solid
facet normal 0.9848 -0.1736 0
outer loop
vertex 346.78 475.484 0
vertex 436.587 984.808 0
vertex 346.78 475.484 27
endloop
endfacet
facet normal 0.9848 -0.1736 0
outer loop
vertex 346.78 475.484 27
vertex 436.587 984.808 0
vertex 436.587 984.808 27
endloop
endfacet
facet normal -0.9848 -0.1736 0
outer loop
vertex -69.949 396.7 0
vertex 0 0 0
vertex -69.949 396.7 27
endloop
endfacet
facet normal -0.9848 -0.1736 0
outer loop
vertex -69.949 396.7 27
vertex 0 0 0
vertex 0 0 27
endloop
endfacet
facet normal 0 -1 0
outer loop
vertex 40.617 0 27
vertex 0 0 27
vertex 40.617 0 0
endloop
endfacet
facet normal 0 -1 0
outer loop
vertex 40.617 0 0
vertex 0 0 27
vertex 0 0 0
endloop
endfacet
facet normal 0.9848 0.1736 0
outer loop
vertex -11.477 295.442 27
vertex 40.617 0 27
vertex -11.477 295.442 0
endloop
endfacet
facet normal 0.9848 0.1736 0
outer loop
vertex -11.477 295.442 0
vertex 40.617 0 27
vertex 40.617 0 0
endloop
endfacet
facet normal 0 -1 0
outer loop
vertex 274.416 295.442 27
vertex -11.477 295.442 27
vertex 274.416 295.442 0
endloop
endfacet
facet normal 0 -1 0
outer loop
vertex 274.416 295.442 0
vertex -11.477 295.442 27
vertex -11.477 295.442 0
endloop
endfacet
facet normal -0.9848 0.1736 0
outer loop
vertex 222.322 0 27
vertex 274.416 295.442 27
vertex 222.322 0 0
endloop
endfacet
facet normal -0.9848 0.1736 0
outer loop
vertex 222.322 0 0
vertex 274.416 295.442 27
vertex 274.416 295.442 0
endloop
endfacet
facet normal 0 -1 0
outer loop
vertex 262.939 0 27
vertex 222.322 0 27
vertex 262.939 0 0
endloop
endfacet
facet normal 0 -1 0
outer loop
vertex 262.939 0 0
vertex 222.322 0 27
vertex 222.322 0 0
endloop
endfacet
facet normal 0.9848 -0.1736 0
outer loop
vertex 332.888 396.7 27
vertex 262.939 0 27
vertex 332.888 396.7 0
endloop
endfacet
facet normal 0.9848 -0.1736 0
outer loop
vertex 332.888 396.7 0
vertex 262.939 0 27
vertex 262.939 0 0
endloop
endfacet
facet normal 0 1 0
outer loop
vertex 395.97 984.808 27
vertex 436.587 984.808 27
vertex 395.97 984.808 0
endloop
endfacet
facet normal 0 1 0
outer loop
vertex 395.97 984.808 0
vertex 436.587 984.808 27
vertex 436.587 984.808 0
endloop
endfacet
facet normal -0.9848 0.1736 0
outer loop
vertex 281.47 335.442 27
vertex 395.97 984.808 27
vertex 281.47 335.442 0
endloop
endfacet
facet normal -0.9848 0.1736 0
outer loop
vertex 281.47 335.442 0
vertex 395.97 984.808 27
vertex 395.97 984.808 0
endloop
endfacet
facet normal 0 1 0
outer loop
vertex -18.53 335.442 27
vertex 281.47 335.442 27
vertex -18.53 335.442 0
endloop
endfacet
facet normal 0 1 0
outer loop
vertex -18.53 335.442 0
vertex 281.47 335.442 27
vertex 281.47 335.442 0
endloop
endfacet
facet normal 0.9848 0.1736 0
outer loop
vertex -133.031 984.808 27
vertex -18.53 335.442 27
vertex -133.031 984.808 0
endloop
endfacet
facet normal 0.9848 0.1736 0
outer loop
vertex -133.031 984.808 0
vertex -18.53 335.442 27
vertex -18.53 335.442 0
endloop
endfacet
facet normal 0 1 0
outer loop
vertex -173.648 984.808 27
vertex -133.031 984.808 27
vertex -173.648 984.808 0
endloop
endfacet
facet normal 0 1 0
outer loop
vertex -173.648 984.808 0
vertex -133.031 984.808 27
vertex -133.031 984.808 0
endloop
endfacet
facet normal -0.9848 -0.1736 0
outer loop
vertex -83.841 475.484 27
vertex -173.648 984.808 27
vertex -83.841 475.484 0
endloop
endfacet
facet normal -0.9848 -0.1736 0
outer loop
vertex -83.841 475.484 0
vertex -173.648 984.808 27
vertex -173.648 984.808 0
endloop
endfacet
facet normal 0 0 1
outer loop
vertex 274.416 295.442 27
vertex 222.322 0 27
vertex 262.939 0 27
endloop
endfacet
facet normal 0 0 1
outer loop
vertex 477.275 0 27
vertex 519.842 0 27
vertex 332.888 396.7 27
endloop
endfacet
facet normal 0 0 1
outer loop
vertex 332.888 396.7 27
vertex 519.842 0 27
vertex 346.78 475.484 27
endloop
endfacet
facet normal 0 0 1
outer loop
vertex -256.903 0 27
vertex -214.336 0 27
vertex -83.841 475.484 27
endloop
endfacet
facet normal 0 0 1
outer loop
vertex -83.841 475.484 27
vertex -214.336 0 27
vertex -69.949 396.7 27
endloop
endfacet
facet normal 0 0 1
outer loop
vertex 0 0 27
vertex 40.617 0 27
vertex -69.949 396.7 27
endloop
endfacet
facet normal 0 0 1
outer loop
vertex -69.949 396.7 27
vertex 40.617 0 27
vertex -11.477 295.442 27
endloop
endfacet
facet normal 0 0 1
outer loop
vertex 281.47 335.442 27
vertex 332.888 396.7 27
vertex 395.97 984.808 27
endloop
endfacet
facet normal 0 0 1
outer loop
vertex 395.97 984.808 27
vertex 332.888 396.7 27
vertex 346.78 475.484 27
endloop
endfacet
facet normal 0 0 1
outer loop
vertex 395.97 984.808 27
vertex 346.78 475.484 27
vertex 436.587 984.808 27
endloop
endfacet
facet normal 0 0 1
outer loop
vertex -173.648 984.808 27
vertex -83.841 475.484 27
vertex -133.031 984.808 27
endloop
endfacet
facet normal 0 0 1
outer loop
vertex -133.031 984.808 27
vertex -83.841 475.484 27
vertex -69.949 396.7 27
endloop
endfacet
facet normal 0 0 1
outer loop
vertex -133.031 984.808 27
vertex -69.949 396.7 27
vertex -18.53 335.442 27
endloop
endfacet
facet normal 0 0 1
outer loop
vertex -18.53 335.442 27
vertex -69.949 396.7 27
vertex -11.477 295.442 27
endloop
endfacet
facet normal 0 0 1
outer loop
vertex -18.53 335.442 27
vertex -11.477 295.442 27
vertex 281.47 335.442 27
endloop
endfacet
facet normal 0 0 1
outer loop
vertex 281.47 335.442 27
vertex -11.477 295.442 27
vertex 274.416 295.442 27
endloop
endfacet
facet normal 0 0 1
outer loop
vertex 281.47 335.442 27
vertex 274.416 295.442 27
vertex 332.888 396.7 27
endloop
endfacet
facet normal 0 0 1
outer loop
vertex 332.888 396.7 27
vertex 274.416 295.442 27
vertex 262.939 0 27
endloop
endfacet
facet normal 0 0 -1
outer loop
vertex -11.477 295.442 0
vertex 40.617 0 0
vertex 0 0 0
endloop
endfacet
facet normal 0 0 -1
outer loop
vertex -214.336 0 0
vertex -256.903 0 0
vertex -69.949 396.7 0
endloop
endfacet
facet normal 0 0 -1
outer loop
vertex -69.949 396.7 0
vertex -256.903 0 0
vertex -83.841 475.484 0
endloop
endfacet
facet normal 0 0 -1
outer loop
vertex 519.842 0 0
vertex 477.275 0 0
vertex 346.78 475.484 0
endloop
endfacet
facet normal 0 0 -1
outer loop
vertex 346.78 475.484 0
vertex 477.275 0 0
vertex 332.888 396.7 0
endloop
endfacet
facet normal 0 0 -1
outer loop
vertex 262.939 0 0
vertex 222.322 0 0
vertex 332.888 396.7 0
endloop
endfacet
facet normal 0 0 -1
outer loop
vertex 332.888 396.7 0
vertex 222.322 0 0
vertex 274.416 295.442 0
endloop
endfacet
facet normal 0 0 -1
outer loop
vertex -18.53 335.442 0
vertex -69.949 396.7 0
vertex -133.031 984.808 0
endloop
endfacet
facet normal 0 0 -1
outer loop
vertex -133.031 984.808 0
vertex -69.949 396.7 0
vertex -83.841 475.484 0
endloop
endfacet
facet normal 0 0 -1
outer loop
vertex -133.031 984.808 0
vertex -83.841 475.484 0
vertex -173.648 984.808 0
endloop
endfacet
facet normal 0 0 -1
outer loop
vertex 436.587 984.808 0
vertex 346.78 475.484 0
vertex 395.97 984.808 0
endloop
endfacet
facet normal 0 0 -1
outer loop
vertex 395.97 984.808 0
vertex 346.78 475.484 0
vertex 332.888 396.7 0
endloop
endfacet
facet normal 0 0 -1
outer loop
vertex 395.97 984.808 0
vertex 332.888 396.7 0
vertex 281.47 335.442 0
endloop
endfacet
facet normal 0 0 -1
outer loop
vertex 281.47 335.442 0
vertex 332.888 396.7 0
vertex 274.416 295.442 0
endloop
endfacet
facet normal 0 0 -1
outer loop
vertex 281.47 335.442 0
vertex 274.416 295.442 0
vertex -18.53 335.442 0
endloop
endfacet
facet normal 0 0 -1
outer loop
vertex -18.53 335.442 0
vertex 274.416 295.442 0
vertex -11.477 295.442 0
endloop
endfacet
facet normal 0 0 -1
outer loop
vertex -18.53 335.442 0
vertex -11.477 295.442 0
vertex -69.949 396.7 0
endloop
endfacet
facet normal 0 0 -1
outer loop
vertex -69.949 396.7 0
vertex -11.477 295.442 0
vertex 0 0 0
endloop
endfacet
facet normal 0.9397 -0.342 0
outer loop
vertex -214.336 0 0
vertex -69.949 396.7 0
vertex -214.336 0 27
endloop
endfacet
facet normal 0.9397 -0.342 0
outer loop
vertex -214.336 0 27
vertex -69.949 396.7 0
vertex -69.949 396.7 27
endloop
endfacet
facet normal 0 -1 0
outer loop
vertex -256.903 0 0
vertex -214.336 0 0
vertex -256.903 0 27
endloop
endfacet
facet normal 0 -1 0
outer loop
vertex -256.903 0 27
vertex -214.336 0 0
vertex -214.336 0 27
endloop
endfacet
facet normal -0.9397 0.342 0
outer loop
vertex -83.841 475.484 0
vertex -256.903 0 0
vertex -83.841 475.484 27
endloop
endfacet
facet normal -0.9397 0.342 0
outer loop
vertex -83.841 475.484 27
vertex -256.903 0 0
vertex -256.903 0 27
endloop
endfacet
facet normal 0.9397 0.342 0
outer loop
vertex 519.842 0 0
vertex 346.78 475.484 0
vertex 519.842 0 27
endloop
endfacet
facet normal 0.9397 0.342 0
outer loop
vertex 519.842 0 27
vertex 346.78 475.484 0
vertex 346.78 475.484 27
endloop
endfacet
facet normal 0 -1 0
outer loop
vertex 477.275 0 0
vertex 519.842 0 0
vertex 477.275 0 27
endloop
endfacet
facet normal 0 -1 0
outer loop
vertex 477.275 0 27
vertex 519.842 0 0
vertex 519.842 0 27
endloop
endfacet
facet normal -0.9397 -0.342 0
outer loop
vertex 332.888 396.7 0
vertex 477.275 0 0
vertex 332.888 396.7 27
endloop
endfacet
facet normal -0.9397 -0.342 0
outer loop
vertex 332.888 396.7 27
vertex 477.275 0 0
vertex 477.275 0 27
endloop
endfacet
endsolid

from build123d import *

# Parameters (mm, degrees)
BOSS_EXTRU_1_DEPTH = 27
BOSS_EXTRU_2_DEPTH = 27


with BuildPart() as part:
    # Esquisse1 → Boss.-Extru.1 (new body)
    with BuildSketch(Plane.XY):
        Polygon((0, 0), (-173.648177667, 984.807753012), (-133.031113192, 984.807753012), (-18.530468053, 335.442325904), (281.469531947, 335.442325904), (395.970177086, 984.807753012), (436.587241561, 984.807753012), (262.939063894, 0), (222.321999419, 0), (274.416452719, 295.442325904), (-11.477388825, 295.442325904), (40.617064475, 0), align=None)
    extrude(amount=BOSS_EXTRU_1_DEPTH)

    # Esquisse2 → Boss.-Extru.2 (add)
    with BuildSketch(Plane.XY.offset(27)):
        Polygon((-69.948886071, 396.699845877), (-214.335821908, 0), (-256.902932807, 0), (-83.840740284, 475.484466118), align=None)
        Polygon((346.779804178, 475.484466118), (332.887949965, 396.699845877), (477.274885802, 0), (519.841996701, 0), align=None)
    extrude(amount=-BOSS_EXTRU_2_DEPTH)


solid = part.part
